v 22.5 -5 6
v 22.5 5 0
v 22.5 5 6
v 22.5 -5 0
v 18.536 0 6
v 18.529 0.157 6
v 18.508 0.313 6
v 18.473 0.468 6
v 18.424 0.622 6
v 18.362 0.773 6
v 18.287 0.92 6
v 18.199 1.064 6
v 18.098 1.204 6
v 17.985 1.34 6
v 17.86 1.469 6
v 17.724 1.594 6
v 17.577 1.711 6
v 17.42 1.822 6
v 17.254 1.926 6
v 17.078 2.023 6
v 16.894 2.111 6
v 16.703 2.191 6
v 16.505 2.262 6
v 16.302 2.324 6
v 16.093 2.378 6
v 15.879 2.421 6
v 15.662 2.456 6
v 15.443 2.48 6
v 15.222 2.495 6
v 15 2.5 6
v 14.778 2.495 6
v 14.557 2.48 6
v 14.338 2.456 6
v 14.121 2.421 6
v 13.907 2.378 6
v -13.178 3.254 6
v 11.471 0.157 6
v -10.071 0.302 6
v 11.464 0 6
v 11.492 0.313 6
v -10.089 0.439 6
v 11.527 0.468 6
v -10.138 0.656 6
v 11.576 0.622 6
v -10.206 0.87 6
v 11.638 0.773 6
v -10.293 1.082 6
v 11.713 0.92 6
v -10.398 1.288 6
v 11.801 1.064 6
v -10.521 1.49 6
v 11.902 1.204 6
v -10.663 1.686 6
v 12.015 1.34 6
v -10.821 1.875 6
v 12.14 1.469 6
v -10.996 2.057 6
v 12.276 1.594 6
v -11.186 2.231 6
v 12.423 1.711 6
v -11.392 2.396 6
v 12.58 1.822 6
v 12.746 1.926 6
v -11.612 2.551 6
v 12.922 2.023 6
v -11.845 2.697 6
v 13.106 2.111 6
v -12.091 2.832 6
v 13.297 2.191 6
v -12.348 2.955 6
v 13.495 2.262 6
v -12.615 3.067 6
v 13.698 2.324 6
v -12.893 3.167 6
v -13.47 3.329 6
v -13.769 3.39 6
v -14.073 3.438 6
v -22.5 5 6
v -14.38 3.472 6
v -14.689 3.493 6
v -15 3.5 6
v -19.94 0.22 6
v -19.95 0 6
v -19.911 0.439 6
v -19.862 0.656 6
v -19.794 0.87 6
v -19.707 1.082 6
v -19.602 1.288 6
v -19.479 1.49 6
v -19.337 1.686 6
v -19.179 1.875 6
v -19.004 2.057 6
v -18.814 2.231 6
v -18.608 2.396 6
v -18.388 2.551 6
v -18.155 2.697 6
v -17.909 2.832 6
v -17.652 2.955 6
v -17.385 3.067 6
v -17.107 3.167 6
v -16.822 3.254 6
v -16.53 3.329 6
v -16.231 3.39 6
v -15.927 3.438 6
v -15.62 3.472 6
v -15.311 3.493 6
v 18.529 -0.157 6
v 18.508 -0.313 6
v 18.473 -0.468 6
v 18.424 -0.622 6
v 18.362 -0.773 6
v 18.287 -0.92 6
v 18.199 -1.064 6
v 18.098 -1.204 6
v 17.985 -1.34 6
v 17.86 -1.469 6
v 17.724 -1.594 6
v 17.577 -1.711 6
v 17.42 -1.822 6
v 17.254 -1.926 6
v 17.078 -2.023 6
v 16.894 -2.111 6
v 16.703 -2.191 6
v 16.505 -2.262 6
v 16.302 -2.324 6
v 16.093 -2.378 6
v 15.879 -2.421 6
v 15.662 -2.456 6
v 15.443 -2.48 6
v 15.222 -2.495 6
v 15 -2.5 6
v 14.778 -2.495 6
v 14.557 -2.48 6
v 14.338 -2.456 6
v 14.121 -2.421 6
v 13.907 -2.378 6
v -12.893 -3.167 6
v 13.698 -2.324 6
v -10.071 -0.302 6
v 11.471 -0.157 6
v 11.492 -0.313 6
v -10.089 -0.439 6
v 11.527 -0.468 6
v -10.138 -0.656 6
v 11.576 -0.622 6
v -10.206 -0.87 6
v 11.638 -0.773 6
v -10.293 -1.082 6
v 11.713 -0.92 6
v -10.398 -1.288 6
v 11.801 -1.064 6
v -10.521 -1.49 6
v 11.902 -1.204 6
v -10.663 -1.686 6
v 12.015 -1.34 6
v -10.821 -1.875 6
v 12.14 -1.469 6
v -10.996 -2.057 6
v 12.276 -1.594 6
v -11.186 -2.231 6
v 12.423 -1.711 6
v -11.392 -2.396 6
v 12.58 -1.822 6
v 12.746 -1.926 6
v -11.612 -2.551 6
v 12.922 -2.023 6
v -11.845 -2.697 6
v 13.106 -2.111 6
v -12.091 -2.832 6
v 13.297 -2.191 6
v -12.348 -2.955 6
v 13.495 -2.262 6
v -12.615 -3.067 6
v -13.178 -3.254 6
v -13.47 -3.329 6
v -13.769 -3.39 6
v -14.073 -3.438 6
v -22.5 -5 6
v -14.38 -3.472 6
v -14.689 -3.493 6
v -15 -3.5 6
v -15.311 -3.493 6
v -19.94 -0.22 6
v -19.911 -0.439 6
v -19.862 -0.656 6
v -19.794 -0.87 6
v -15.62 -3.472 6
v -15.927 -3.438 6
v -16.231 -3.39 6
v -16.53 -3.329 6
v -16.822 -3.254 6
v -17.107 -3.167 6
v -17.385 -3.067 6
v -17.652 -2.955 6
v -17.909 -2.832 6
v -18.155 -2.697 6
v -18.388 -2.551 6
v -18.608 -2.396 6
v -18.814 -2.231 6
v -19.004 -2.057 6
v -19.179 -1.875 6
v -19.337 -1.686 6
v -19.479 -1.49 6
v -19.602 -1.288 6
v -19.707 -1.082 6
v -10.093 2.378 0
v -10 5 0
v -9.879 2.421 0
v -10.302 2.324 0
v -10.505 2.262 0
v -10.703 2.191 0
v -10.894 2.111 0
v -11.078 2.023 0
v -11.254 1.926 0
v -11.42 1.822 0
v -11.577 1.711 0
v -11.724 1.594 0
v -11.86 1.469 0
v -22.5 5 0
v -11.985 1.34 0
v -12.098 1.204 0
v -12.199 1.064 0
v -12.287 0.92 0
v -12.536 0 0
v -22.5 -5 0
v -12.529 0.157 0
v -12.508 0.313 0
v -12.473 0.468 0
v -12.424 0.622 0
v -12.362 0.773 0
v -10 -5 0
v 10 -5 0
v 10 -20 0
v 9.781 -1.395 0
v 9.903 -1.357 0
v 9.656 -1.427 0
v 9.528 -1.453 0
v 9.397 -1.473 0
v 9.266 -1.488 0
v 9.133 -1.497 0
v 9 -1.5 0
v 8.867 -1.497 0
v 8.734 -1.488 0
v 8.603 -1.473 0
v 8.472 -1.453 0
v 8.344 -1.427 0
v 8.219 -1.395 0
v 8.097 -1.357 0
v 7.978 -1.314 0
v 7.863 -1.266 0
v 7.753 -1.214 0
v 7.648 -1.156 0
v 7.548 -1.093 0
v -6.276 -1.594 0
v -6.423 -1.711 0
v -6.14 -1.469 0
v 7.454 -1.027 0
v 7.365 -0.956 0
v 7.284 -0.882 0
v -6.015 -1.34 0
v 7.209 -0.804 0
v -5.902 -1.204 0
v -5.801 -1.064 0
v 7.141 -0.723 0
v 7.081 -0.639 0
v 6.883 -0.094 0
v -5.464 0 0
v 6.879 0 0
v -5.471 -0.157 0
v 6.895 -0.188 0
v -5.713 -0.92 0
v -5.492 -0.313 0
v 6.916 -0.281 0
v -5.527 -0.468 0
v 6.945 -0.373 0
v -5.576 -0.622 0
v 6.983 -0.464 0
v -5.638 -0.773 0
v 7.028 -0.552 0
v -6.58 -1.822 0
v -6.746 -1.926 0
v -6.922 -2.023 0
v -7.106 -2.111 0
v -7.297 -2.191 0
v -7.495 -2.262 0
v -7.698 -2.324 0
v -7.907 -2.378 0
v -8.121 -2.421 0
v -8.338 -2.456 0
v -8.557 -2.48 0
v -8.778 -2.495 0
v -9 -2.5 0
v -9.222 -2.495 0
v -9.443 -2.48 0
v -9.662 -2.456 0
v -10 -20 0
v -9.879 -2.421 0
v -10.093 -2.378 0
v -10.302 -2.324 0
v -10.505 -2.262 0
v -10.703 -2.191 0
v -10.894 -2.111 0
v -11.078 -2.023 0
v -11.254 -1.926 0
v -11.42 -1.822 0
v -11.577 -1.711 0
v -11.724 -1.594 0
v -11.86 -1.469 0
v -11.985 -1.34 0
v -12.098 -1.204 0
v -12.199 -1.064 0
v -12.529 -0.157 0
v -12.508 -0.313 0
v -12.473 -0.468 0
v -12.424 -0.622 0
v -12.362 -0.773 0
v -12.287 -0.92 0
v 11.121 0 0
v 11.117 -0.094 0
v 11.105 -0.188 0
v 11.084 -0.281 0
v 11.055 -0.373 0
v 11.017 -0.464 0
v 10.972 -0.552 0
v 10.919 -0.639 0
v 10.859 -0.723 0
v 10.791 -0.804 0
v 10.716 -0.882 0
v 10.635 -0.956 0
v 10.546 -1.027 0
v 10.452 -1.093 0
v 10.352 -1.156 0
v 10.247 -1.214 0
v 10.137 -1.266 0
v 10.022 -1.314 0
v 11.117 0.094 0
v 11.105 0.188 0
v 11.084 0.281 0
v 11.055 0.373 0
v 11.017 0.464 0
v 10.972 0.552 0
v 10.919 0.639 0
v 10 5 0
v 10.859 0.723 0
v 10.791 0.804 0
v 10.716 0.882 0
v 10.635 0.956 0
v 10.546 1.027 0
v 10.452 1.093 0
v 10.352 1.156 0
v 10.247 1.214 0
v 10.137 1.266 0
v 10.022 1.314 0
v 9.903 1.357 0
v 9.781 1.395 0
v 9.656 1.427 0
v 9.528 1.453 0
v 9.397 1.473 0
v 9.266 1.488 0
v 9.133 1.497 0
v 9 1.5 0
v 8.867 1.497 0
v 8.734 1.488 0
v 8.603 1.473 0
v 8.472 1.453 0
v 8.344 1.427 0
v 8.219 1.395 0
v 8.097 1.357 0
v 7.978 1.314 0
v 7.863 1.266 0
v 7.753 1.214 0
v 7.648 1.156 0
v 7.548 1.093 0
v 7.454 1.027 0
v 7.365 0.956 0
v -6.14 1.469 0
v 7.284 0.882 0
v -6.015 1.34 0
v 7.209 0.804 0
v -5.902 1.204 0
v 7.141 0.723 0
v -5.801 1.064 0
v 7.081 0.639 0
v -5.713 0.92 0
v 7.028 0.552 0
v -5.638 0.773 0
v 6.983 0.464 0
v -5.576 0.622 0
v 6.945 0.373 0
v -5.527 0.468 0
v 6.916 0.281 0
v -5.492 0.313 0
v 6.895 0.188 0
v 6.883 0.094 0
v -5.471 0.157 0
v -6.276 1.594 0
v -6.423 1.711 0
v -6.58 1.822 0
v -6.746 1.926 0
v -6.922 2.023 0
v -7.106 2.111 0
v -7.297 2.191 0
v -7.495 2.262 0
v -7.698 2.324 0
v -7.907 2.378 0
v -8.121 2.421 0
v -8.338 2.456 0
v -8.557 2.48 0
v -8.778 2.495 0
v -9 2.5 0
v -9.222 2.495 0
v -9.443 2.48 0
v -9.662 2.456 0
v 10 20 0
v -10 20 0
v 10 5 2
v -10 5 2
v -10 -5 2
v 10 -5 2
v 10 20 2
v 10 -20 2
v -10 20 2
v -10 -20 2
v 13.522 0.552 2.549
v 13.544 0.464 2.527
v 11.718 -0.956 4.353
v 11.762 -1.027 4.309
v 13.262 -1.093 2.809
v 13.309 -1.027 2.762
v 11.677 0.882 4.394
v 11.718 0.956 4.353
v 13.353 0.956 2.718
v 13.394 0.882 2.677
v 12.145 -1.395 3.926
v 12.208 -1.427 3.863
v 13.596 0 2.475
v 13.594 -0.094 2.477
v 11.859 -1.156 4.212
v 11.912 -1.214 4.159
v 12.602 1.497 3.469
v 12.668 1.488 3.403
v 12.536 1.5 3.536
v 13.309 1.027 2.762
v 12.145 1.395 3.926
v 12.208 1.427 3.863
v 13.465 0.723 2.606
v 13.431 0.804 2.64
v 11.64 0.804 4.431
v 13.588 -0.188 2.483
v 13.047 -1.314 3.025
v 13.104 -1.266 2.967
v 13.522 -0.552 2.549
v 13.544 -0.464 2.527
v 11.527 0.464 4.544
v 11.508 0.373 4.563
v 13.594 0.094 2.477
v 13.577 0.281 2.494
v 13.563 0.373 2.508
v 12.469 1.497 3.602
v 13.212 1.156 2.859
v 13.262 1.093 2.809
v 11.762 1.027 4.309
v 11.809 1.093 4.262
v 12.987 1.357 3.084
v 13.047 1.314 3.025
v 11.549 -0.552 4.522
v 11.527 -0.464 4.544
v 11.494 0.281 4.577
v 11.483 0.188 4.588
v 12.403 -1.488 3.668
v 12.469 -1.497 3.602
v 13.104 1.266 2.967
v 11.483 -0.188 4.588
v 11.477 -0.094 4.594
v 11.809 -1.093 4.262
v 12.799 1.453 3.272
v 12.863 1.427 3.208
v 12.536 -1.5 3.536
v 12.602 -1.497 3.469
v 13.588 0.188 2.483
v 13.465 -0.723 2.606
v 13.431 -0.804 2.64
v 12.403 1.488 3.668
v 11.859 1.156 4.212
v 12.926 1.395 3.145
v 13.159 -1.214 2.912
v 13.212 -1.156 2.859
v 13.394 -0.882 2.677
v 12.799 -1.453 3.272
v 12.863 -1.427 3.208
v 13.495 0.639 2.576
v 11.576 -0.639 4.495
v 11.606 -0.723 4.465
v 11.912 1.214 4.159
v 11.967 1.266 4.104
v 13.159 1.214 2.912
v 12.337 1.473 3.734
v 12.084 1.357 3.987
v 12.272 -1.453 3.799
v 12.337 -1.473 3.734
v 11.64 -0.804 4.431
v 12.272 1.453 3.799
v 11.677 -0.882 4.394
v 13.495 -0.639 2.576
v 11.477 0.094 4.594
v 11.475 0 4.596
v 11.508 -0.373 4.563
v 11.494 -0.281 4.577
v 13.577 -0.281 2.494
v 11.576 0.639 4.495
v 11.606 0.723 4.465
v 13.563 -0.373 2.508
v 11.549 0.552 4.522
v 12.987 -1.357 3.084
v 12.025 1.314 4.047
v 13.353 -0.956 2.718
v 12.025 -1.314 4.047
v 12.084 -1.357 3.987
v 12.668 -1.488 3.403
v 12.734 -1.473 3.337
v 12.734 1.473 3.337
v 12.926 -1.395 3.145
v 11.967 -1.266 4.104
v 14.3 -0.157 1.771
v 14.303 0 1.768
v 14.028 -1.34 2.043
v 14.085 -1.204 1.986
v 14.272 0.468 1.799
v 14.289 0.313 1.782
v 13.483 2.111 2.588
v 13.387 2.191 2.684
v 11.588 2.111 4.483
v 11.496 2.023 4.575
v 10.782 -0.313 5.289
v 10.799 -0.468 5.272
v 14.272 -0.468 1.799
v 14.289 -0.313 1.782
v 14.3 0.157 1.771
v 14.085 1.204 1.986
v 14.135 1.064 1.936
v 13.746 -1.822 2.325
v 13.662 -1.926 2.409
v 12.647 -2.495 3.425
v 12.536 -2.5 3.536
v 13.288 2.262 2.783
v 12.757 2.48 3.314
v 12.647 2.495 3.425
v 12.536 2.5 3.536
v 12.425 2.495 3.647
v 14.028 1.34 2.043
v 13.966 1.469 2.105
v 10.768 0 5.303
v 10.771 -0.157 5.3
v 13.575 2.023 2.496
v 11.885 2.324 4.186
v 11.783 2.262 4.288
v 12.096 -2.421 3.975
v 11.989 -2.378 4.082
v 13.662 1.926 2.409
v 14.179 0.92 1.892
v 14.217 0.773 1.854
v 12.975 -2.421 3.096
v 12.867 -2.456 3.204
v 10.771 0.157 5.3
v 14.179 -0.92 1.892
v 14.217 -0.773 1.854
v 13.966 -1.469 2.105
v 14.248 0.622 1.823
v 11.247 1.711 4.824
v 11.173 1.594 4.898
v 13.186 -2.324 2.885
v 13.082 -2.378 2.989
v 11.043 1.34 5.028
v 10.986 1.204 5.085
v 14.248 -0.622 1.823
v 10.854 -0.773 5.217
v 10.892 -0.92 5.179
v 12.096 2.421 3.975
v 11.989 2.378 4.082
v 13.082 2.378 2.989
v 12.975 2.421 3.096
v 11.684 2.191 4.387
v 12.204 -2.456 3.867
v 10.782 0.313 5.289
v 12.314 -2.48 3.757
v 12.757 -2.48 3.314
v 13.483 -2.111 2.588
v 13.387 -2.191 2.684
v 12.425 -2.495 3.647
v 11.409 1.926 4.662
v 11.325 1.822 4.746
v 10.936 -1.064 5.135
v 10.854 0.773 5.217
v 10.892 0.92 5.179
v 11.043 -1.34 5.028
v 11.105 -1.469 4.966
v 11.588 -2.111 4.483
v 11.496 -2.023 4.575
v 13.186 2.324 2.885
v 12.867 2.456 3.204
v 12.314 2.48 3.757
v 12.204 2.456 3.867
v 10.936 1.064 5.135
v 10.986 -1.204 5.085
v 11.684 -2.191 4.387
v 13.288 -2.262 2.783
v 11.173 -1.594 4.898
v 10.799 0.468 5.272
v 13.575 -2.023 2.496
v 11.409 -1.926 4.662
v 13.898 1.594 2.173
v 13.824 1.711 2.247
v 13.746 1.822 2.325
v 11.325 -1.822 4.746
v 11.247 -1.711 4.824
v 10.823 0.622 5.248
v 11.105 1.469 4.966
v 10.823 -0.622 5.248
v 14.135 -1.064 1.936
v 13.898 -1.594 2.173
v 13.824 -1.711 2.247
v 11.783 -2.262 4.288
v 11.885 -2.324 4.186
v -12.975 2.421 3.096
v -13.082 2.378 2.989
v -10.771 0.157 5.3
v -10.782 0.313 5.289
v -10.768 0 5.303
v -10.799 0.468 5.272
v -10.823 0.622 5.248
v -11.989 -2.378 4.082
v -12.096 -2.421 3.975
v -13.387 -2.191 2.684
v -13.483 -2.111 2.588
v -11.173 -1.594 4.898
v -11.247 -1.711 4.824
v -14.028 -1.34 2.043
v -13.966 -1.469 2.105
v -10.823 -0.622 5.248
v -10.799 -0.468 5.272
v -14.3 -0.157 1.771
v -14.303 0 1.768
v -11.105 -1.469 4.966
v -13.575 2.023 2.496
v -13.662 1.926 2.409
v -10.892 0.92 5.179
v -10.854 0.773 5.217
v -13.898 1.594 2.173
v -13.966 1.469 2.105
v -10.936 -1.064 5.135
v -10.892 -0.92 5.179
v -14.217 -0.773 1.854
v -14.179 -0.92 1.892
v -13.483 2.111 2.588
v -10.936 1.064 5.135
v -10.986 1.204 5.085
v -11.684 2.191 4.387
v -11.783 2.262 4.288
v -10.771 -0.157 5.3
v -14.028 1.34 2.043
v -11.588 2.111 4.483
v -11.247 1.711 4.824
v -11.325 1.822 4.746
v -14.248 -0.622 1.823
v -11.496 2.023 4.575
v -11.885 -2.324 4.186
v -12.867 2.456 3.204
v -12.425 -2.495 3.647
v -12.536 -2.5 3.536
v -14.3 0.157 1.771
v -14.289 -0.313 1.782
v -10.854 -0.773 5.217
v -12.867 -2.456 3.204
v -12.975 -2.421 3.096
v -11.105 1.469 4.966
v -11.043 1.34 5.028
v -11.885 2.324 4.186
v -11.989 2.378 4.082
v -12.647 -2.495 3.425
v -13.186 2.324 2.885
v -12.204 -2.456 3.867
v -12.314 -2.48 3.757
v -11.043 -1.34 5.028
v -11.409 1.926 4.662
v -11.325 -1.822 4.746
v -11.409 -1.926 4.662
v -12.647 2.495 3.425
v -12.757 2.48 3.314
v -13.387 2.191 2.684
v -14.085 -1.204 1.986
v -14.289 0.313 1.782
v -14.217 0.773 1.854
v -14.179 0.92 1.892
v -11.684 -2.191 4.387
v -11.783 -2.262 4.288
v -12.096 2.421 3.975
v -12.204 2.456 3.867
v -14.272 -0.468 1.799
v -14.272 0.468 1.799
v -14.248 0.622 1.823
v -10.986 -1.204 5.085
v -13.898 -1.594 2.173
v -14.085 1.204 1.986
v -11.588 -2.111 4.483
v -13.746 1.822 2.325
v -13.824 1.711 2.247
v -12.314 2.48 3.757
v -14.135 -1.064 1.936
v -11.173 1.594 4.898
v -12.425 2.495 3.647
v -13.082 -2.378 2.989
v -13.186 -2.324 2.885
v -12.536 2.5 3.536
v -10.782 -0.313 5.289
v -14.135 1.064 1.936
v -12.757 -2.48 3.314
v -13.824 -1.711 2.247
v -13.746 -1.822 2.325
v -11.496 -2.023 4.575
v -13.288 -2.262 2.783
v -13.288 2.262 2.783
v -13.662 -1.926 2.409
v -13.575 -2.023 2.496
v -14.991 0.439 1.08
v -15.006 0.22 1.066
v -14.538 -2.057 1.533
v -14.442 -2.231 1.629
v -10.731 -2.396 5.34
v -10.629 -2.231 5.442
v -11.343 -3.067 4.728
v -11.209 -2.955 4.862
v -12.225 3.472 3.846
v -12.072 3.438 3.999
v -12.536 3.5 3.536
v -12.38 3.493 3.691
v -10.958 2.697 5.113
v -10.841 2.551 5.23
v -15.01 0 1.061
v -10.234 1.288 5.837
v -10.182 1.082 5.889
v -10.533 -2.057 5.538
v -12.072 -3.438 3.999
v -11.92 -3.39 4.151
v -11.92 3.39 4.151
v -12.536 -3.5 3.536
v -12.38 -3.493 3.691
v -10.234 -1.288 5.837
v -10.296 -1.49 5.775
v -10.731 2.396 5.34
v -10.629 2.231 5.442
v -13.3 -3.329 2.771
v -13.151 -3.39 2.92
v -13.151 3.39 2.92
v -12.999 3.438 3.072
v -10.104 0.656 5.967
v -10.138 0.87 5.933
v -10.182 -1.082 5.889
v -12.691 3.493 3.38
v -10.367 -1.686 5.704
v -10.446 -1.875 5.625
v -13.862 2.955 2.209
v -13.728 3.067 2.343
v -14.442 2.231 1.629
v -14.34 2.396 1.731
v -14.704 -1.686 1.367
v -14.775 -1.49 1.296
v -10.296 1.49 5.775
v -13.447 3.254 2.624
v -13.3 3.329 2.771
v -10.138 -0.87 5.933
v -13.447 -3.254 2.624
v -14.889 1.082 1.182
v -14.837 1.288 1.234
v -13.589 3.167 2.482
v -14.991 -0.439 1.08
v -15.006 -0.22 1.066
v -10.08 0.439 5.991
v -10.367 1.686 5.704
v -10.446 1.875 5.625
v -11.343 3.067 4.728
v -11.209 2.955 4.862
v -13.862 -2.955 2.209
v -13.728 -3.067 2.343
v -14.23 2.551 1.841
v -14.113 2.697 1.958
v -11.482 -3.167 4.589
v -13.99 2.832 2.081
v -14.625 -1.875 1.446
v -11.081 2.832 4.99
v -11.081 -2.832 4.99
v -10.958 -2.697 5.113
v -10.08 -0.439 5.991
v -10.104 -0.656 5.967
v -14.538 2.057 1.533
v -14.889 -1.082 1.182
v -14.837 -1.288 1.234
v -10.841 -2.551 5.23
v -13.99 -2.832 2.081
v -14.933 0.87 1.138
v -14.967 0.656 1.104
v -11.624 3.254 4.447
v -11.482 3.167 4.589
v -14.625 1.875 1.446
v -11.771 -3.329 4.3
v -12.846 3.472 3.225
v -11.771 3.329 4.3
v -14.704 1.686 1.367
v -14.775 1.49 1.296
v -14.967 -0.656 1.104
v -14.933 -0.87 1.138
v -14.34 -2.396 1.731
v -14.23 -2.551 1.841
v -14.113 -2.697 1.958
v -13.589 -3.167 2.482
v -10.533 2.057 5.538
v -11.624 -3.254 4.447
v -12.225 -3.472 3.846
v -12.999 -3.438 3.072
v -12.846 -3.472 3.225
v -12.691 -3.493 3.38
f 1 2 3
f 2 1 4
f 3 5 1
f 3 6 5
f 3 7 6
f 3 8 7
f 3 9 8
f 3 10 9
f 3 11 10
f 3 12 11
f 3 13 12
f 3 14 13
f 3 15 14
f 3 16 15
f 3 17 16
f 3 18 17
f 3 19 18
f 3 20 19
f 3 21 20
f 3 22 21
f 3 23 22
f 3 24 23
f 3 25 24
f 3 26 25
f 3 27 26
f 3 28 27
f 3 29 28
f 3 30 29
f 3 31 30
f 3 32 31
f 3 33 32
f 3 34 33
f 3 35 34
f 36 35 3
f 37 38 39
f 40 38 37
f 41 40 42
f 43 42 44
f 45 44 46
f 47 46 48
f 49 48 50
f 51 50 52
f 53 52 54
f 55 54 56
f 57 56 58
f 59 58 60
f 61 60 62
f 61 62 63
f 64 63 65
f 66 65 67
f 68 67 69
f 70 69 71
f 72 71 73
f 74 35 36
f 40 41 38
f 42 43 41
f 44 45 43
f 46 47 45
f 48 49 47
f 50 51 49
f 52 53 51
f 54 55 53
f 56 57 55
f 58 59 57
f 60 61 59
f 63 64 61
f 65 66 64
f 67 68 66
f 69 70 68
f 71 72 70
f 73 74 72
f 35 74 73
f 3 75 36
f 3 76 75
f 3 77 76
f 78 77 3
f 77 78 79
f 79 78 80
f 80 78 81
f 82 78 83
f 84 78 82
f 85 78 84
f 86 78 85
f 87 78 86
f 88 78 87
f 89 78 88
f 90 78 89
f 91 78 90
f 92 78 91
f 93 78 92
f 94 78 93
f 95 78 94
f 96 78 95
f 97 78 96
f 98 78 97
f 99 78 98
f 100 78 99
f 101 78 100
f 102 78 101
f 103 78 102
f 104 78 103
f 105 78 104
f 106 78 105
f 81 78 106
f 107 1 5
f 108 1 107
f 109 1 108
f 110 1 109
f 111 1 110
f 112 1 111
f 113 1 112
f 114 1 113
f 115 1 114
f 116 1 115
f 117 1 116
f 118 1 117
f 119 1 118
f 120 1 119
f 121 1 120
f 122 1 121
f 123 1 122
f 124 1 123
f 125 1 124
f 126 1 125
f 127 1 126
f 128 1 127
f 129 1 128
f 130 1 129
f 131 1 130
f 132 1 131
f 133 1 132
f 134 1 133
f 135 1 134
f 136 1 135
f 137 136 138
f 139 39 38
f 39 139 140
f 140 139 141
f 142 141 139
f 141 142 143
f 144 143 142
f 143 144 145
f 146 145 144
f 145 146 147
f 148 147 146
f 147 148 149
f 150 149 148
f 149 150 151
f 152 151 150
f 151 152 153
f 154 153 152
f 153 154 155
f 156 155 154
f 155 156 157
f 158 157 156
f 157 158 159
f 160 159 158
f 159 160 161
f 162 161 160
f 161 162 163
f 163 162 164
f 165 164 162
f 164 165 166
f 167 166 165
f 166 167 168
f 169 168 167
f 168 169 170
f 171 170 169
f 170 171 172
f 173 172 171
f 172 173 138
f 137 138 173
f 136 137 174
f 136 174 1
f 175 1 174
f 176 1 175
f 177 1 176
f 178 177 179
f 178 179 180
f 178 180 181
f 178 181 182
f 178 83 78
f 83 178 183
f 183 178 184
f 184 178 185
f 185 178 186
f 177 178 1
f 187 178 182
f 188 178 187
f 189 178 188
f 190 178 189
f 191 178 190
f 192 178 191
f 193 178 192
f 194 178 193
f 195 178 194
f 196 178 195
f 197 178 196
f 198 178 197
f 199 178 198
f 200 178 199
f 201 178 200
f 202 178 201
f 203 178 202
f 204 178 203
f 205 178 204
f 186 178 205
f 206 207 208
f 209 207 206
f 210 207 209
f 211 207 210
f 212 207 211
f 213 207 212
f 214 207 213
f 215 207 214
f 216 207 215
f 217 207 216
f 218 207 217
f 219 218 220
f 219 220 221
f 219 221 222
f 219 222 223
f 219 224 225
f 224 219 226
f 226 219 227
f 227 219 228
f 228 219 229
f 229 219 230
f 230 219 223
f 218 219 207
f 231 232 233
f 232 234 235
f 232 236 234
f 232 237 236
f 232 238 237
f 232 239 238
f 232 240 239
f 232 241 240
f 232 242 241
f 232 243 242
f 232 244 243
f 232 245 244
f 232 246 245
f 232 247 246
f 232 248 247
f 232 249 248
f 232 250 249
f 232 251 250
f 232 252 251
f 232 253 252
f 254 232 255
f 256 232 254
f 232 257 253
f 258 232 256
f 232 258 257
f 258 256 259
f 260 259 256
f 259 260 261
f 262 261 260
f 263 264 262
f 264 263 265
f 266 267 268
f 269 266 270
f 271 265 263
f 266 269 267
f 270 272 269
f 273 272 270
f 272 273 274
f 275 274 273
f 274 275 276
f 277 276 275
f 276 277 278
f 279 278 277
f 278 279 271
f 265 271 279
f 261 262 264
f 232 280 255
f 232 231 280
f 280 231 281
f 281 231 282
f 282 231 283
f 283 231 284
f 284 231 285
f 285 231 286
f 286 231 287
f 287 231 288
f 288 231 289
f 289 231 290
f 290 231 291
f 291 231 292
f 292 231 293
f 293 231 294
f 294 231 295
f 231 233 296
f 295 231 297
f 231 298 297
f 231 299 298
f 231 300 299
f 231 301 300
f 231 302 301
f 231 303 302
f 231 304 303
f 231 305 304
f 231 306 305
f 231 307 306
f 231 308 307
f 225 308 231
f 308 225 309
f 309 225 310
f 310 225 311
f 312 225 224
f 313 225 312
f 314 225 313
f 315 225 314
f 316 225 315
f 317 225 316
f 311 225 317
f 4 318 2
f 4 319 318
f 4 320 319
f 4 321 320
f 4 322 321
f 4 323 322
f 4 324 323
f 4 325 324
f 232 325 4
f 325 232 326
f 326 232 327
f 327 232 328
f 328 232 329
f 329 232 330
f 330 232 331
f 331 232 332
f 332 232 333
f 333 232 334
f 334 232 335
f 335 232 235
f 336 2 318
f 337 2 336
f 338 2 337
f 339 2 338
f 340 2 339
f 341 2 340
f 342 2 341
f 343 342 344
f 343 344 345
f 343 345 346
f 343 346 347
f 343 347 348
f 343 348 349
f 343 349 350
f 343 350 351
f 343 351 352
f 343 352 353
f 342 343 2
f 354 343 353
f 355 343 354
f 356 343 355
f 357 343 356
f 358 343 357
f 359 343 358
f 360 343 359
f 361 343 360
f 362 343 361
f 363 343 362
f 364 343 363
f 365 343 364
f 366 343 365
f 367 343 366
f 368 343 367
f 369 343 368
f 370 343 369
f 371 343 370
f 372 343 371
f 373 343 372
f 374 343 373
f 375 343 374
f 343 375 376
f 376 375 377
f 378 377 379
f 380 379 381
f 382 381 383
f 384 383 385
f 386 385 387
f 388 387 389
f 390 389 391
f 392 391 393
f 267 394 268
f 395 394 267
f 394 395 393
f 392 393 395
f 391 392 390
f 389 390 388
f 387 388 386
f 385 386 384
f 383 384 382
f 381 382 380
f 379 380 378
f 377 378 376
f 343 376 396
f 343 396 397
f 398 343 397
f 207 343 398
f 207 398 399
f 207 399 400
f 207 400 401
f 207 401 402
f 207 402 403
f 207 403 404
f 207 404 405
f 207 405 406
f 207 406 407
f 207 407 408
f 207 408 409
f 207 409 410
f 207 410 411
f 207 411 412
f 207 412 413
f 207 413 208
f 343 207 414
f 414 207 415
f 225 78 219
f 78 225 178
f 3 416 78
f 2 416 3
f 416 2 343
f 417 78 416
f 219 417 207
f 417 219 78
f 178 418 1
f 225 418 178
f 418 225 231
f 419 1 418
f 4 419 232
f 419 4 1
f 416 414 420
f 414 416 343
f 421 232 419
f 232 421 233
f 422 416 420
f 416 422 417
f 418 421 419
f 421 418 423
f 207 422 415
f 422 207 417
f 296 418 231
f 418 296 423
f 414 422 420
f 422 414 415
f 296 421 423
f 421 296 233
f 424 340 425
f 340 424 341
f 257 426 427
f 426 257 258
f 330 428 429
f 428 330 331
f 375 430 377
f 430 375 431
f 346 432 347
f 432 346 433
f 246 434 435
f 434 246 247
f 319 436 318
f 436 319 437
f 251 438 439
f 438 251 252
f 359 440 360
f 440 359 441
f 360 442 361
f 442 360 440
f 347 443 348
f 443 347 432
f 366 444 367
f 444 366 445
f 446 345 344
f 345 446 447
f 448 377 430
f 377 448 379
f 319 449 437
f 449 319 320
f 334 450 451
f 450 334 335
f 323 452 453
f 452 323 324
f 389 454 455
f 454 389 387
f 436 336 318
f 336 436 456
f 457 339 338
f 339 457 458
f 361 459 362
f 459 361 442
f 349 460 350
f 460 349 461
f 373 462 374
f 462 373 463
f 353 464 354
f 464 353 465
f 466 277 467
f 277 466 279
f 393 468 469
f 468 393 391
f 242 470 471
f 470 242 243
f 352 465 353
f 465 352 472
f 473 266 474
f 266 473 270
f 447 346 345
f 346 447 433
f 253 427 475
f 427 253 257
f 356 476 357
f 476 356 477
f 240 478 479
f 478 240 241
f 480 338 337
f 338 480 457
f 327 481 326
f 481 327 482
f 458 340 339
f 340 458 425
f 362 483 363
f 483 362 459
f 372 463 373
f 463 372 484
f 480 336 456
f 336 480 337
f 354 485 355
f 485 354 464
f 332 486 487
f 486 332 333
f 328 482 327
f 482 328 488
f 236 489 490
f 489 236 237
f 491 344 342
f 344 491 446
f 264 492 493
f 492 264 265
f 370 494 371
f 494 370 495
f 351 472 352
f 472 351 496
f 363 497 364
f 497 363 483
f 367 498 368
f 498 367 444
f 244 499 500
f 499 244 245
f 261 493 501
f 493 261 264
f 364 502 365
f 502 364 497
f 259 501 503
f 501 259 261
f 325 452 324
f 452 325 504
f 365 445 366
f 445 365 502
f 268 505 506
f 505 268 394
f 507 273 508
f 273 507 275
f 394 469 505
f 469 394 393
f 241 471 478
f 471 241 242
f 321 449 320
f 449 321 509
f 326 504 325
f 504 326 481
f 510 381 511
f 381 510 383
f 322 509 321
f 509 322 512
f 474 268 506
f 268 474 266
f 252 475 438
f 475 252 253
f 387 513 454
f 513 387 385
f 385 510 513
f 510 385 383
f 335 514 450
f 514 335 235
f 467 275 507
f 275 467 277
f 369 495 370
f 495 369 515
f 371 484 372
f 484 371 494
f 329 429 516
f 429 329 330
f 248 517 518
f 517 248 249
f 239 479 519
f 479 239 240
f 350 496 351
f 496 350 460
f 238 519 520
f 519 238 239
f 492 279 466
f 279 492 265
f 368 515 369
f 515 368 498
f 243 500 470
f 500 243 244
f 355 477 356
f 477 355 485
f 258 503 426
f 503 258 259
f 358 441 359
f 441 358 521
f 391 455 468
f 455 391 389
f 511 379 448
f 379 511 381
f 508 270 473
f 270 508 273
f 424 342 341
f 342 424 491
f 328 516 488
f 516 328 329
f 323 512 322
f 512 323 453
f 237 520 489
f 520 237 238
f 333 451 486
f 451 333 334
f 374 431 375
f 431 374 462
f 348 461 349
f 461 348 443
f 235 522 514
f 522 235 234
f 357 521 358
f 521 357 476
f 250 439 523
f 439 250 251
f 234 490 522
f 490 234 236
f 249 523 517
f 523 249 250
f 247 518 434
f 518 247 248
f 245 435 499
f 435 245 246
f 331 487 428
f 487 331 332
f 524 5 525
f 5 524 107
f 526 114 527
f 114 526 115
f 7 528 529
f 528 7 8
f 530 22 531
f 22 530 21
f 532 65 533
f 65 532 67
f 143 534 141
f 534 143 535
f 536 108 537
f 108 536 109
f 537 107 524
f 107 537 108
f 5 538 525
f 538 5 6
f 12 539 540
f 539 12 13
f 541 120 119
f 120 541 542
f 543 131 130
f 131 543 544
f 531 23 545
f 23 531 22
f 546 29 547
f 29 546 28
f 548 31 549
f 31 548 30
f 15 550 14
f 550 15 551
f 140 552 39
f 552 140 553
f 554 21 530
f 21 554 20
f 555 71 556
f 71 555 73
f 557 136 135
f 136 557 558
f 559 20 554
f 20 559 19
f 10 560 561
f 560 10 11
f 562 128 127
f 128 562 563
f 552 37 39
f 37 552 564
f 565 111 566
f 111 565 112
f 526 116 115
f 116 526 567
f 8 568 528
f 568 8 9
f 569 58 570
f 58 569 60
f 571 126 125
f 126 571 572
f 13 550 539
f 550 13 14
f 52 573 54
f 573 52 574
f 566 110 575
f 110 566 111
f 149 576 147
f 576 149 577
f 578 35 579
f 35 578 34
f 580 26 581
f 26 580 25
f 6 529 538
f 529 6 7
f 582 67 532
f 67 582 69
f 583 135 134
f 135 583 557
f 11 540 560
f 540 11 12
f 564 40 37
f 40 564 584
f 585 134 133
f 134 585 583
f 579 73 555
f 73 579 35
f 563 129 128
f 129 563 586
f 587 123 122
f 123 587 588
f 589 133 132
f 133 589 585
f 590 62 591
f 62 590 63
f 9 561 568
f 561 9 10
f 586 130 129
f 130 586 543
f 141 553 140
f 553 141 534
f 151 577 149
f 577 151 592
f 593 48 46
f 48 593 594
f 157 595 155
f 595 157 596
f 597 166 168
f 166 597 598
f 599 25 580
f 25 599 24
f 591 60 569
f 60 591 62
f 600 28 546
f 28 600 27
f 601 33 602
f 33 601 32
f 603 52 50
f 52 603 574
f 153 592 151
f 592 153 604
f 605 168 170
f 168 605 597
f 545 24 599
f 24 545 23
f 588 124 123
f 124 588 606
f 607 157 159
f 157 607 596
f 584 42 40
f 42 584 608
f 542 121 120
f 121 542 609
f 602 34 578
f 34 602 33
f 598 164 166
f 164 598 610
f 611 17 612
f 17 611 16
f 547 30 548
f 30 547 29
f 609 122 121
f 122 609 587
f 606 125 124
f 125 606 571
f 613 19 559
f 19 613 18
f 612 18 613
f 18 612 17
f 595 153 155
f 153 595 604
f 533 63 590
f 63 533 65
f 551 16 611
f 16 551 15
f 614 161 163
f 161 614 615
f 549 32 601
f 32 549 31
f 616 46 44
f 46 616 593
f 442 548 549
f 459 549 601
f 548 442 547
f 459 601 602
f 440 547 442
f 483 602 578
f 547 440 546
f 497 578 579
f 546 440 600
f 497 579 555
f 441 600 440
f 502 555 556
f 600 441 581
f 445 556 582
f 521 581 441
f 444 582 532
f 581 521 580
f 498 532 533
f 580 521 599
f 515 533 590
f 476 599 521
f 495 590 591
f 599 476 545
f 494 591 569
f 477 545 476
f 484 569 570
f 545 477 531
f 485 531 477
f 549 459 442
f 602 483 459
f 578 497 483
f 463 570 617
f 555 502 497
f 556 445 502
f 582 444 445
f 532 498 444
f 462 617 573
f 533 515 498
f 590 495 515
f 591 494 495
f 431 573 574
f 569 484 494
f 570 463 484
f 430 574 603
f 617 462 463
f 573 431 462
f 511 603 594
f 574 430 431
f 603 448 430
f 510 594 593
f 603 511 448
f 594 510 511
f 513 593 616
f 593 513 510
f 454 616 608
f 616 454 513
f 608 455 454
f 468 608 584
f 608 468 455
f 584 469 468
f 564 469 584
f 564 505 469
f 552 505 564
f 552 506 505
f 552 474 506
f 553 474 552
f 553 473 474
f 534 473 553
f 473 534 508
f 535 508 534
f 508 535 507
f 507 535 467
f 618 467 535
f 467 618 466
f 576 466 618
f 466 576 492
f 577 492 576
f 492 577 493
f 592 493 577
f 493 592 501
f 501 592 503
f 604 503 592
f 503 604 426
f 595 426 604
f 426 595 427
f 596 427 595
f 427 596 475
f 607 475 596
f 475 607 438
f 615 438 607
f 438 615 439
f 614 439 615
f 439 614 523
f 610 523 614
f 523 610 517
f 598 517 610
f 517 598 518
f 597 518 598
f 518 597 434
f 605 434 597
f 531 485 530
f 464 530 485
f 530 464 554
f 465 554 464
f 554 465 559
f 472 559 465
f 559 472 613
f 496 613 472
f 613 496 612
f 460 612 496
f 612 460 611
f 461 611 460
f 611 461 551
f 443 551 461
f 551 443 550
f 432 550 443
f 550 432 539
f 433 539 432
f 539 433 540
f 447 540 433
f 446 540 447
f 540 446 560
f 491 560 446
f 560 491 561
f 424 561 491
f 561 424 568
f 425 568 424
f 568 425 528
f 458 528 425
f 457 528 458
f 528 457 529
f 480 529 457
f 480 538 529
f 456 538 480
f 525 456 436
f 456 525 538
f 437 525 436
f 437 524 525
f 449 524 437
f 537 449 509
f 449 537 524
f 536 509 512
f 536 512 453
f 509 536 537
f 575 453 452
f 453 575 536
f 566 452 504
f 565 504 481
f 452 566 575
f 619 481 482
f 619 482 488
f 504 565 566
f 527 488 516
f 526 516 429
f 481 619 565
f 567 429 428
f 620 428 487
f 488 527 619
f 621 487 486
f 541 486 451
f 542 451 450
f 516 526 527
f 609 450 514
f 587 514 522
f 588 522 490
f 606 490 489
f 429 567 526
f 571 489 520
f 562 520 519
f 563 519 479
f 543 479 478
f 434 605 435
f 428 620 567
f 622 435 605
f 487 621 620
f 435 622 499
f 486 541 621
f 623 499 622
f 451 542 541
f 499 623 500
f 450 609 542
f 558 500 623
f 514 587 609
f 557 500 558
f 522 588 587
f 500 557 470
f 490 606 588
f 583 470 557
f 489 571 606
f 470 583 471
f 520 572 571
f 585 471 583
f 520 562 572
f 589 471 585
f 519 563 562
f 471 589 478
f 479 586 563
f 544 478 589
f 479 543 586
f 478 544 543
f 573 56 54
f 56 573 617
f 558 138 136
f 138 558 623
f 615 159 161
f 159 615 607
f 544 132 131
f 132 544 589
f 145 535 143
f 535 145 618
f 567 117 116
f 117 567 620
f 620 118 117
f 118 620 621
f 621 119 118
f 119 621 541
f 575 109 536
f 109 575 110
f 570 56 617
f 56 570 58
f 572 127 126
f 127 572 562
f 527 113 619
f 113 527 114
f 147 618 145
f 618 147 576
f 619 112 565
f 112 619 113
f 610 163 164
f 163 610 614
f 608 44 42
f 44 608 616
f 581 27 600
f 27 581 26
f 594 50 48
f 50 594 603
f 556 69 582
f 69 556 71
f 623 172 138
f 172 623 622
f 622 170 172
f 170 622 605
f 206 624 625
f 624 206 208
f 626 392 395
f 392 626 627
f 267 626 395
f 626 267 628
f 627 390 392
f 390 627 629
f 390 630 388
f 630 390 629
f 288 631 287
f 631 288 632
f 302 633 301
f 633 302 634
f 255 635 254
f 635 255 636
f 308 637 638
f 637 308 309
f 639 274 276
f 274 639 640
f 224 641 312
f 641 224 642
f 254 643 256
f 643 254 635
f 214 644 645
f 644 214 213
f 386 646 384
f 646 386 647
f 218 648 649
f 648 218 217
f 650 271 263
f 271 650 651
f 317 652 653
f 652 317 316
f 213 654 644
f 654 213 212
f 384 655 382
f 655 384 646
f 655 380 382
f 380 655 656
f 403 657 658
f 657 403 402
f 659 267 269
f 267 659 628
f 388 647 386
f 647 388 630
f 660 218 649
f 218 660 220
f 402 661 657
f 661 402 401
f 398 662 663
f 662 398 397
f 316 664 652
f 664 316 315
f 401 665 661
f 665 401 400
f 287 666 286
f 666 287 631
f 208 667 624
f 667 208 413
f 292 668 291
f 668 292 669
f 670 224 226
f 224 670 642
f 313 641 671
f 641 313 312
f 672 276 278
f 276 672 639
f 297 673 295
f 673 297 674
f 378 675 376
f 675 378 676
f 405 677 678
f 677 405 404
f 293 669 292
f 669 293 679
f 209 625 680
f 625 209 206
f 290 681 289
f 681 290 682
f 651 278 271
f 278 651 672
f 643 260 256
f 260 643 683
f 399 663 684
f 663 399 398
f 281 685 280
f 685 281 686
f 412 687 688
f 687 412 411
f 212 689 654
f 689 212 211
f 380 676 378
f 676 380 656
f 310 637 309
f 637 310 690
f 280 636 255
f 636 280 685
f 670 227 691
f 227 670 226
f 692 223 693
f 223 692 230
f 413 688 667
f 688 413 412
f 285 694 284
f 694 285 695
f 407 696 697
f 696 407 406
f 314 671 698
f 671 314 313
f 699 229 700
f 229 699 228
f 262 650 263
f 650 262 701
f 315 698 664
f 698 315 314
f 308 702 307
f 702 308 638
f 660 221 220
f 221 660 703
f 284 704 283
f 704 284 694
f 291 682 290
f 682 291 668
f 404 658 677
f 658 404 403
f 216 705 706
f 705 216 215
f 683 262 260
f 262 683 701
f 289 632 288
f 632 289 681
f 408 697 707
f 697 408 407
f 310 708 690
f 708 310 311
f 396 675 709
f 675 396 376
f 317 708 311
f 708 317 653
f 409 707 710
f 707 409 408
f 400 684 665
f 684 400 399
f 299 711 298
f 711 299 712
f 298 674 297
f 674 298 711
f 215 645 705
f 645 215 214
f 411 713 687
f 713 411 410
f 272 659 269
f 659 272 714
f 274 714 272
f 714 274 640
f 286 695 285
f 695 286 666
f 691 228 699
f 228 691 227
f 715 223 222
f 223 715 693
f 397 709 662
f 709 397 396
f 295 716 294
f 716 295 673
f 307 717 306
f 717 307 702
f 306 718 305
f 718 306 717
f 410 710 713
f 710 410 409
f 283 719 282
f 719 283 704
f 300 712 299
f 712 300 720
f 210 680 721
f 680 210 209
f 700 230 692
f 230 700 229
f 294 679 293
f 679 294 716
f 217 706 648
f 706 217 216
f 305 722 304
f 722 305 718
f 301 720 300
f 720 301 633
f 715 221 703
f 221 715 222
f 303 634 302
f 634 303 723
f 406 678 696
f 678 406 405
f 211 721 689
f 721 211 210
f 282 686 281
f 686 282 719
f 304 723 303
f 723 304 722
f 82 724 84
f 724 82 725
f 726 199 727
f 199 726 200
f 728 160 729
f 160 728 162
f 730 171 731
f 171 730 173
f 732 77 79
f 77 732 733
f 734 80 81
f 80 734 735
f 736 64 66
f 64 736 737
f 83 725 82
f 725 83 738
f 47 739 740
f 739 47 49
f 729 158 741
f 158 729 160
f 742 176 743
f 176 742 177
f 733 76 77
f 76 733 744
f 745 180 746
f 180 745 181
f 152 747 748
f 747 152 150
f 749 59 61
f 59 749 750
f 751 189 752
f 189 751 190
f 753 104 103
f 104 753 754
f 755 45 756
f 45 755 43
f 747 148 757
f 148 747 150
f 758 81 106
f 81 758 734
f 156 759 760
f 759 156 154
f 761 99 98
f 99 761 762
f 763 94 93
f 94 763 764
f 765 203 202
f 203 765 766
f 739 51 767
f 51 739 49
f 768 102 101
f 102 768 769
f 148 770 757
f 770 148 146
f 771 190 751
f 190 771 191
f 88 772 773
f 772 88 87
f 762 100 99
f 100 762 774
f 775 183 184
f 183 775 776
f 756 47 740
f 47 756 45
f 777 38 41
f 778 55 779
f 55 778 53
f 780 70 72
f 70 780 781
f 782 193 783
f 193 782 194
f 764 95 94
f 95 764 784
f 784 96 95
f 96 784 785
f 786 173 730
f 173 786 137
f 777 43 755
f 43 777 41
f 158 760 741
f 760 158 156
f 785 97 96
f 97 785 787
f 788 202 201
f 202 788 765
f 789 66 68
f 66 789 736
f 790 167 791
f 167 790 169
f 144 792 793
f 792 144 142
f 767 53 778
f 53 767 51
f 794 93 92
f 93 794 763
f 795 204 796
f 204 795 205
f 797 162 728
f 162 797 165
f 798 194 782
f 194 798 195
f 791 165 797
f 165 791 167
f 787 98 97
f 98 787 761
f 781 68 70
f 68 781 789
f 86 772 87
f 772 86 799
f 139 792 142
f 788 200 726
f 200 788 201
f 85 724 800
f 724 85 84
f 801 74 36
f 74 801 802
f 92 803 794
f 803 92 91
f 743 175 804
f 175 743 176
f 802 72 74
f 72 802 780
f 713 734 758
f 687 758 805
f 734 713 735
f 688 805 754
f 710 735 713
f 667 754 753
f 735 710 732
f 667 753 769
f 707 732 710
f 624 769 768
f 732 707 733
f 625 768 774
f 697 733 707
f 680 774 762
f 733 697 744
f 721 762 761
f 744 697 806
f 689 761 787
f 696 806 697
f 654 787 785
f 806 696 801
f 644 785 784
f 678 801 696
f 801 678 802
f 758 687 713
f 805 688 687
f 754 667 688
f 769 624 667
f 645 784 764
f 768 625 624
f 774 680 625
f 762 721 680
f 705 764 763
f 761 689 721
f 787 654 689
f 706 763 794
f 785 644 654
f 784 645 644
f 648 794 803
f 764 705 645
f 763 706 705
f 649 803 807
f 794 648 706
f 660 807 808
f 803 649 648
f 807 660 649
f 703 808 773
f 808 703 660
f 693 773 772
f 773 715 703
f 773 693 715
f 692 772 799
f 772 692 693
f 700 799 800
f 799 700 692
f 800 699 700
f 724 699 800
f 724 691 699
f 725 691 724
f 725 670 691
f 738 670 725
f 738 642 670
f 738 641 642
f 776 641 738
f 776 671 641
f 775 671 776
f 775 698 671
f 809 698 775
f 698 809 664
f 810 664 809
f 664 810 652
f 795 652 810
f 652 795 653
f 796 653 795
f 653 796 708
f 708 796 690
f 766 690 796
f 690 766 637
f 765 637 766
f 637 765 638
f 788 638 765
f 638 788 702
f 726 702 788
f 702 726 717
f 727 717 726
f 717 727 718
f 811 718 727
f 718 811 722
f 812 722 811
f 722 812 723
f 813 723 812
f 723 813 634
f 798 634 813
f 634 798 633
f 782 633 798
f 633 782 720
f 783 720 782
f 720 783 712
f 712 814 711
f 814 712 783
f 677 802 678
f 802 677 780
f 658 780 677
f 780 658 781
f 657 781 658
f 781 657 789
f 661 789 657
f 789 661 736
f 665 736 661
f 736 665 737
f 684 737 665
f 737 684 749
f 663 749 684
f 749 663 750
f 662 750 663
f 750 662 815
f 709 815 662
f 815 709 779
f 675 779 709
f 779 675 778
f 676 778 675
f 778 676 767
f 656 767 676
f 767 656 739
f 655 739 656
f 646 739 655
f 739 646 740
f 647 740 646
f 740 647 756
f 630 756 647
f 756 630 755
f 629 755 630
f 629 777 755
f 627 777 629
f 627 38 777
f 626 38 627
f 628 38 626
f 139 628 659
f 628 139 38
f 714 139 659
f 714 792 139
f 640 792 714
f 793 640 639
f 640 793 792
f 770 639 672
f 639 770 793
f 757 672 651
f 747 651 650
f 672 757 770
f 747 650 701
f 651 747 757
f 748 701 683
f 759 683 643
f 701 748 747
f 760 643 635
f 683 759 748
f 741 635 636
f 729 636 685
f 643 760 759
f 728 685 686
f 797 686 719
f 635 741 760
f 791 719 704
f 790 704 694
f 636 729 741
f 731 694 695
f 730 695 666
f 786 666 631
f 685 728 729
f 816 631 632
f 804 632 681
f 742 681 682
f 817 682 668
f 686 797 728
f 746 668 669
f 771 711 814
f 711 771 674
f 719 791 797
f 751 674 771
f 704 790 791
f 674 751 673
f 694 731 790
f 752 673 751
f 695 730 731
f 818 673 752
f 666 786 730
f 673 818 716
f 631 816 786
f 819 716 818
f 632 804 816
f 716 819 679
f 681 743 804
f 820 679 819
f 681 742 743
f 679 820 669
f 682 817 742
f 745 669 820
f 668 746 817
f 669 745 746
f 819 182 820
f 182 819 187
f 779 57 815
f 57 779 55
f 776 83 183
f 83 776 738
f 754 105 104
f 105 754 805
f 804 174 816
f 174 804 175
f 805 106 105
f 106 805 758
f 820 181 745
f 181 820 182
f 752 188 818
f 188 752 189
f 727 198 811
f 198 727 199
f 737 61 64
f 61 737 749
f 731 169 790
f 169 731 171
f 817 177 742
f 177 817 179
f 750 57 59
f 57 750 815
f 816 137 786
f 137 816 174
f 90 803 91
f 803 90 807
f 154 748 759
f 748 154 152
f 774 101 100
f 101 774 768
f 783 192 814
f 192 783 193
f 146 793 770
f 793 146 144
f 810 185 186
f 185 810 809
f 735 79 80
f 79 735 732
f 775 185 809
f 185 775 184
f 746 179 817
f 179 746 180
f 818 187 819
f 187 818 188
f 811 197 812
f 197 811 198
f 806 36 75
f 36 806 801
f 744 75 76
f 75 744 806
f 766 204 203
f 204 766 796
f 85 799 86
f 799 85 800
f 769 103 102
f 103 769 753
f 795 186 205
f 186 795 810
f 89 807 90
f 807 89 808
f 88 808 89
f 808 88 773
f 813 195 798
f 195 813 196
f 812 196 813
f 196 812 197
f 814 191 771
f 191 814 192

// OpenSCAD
$fn = 100;

difference() {
    union() {
        translate([-45 / 2, -5])
            cube([45, 10, 6]);
        translate([-10, -20])
            cube([20, 40, 2]);
    }
    translate([9, 0])
        rotate([0, 45, 0])
        union(){
            translate([0, 0, -10])
                cylinder(h=20, r=3 / 2);  // IR fototransistor
            translate([0, 0, 5])
                cylinder(h=10, r=5 / 2);
        }
        
    translate([-9, 0])
        rotate([0, -45, 0])
        union(){
            translate([0, 0, -10])
                cylinder(h=20, r=5 / 2);  // IR fototransistor
            translate([0, 0, 5])
                cylinder(h=10, r=7 / 2);
        }
}
